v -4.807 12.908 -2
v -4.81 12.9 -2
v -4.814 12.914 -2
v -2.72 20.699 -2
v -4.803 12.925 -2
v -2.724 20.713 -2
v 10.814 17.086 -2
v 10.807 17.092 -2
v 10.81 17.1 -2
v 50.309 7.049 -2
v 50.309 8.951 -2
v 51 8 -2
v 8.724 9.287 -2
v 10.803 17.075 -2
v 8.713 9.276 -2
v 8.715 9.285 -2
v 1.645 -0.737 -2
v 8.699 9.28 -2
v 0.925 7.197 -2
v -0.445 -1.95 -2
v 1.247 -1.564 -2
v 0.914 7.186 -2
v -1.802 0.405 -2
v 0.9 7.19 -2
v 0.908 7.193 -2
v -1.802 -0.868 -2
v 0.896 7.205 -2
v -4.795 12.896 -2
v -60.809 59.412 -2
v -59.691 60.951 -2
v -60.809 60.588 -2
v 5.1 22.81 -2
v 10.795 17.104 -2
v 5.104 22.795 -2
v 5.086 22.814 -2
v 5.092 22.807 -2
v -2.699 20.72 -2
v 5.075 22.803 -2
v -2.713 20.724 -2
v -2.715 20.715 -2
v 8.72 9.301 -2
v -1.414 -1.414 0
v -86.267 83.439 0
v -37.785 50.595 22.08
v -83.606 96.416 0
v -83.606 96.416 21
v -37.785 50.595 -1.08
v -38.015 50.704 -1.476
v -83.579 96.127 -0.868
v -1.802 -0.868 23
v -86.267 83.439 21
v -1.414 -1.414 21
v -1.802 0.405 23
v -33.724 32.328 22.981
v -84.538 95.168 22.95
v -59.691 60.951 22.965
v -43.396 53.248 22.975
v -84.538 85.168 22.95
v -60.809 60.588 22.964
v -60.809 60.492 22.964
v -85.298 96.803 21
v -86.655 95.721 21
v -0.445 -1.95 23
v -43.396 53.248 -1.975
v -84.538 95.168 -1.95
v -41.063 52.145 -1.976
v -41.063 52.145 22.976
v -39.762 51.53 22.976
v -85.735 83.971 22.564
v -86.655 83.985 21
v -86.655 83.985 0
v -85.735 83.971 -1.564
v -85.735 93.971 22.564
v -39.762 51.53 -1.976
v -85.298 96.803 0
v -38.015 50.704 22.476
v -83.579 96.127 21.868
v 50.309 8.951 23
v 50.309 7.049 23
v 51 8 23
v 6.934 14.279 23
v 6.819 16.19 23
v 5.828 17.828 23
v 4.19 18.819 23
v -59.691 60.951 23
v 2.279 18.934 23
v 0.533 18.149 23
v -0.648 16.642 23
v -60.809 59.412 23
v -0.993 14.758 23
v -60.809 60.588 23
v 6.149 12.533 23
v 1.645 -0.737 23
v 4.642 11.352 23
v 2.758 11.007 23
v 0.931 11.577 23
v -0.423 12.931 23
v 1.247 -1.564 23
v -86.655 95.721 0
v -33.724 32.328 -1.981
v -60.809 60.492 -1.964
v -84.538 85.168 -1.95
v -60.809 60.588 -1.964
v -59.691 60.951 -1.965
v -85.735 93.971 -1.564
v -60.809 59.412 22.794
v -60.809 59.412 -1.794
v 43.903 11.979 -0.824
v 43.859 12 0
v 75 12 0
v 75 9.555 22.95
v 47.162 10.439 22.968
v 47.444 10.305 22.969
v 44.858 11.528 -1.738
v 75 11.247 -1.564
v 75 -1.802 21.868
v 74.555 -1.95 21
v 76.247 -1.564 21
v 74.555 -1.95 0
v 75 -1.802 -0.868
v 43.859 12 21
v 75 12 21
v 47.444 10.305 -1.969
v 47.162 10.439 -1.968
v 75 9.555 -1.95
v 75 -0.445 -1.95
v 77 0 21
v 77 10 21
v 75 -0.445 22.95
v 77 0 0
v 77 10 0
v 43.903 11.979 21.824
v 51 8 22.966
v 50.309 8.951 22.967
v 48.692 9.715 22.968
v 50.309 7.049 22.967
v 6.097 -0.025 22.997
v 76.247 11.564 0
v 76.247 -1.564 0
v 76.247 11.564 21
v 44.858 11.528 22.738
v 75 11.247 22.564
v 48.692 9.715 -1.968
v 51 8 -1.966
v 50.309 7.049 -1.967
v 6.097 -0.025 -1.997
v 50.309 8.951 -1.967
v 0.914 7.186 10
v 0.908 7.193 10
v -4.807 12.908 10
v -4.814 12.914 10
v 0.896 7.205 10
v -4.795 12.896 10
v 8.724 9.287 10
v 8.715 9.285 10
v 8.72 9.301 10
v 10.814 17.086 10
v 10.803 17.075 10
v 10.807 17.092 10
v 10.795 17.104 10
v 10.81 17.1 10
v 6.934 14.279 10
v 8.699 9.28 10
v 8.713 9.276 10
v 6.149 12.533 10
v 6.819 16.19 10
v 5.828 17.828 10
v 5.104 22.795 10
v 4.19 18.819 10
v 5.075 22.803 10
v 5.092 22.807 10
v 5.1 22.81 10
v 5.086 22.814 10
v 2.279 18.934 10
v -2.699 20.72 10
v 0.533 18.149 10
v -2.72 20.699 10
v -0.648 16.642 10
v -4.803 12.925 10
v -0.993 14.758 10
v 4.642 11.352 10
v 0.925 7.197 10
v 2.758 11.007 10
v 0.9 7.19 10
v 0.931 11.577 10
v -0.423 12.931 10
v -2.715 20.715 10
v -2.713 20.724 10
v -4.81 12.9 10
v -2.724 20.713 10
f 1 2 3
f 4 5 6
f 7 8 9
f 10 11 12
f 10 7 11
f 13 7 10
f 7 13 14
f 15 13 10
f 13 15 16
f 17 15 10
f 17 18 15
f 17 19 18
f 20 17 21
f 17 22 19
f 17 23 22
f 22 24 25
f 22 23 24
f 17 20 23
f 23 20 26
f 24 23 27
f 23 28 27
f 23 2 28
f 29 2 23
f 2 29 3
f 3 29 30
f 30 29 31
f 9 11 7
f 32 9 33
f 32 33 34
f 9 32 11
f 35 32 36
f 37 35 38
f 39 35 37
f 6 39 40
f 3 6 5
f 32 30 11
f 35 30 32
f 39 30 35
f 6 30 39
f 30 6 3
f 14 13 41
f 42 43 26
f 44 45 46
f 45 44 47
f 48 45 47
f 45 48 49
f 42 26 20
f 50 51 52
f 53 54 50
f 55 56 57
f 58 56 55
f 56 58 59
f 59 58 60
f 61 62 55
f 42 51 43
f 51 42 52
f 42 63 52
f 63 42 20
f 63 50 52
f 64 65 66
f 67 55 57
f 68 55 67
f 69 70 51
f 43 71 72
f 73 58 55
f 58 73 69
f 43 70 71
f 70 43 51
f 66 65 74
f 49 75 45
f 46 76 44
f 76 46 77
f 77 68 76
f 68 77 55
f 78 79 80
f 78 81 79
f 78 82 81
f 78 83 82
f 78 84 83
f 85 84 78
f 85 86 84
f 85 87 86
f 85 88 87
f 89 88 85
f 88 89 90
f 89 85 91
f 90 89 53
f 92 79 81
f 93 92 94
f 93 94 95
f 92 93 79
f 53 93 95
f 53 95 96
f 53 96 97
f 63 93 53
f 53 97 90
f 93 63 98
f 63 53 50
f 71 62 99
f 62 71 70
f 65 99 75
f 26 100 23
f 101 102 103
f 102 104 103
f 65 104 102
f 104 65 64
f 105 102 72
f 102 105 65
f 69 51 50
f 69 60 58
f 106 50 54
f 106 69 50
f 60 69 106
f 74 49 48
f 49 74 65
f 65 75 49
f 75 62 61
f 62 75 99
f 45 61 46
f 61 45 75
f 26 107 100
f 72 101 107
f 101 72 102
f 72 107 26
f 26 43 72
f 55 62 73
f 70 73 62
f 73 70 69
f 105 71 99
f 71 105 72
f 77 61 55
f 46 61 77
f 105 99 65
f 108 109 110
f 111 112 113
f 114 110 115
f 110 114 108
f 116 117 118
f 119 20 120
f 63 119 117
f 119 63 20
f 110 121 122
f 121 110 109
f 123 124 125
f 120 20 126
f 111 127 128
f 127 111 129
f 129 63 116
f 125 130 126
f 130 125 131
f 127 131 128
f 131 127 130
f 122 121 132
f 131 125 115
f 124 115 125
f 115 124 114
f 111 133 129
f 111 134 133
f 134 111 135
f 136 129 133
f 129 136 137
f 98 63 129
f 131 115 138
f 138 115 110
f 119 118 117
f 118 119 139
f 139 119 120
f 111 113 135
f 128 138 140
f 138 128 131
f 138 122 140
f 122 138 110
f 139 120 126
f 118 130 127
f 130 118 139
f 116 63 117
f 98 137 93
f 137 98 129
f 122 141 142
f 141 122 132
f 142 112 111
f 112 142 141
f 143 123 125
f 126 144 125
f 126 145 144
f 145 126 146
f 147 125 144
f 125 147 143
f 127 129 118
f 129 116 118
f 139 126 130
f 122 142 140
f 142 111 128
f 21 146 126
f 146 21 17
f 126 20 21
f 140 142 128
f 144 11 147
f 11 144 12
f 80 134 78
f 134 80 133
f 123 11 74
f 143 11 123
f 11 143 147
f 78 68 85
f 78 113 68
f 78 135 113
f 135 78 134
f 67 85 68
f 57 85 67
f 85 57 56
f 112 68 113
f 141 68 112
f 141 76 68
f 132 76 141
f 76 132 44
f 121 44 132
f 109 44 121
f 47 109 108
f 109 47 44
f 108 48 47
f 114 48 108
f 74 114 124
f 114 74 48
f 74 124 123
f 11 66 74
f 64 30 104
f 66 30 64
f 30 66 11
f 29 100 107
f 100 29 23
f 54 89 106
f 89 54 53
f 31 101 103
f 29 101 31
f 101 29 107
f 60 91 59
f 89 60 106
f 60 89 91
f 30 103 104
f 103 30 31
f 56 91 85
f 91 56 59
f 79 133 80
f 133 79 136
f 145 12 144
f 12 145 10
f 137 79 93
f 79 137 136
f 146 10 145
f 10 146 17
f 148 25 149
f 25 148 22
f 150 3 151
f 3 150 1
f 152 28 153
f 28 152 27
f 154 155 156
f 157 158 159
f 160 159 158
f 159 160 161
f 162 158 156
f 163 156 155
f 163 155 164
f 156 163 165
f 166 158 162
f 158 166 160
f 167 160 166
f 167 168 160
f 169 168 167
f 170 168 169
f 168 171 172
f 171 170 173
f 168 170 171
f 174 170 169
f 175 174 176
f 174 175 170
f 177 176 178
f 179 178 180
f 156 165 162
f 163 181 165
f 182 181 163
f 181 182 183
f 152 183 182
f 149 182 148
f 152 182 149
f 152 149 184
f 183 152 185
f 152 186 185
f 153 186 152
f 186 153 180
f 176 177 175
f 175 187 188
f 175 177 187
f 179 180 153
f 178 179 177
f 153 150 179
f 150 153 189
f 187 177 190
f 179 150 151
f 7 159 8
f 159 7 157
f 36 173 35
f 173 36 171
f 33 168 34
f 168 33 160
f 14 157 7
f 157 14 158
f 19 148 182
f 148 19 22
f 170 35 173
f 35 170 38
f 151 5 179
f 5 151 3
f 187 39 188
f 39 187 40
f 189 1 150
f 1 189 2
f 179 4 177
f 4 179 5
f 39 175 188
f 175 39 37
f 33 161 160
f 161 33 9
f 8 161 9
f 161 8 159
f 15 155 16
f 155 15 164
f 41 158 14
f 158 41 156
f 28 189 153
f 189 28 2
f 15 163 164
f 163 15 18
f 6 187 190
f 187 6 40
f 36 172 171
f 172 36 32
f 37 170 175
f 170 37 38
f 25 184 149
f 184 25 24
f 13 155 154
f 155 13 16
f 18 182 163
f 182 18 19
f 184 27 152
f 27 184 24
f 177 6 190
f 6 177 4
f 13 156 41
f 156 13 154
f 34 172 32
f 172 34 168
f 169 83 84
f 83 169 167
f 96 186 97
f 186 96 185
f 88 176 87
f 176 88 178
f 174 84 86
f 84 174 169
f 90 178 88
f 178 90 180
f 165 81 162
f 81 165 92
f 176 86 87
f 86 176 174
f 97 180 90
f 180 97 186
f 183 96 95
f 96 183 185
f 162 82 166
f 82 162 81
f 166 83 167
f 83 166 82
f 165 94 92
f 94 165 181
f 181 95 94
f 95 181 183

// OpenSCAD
// KuatRackPedal

handleLength = 120;
pedalLength = 75;
bevel = 2;
innerThickness = 25;
thickness = innerThickness - 2*bevel;
width = 10;
eqTriA = sqrt(pow(handleLength,2)/2); // length of the equilateral triangle side A from the handle length.
hexWidth = 14;
hexSide = 8.1;

difference() {
union() {
// Handle
hull() {
    rotate([90, 0, -135]) cylinder(handleLength, bevel,bevel);
    translate([0, 0, thickness]) rotate([90, 0, -135]) cylinder(handleLength, bevel,bevel);
    translate([0,0,-bevel]) cylinder(innerThickness, bevel, bevel);
    translate([-eqTriA, eqTriA, 0]) cylinder(thickness, bevel, bevel);
    
    translate([0,width,0]) {
        rotate([90, 0, -135]) cylinder(handleLength, bevel,bevel);
        translate([0, 0, thickness]) rotate([90, 0, -135]) cylinder(handleLength, bevel,bevel);
        translate([0,0,-bevel]) cylinder(innerThickness, bevel, bevel);
        translate([-eqTriA, eqTriA, 0]) cylinder(thickness, bevel, bevel);
    }
};

// Pedal
hull() {
    translate([0, 0, 0]) rotate([90, 0, 90]) cylinder(pedalLength, bevel,bevel);
    translate([0, 0, thickness]) rotate([90, 0, 90]) cylinder(pedalLength, bevel,bevel);
    translate([0,0,-bevel]) cylinder(innerThickness, bevel, bevel);
    translate([pedalLength, 0, 0]) cylinder(thickness, bevel, bevel);
    
    translate([0, width, 0]) {
        translate([0, 0, 0]) rotate([90, 0, 90]) cylinder(pedalLength, bevel,bevel);
        translate([0, 0, thickness]) rotate([90, 0, 90]) cylinder(pedalLength, bevel,bevel);
        translate([0,0,-bevel]) cylinder(innerThickness, bevel, bevel);
        translate([pedalLength, 0, 0]) cylinder(thickness, bevel, bevel);
    }
};

// Support
hull() {
    translate([50, width-2, -bevel]) cylinder(innerThickness, 1, 1);
    translate([-60, 60, -bevel]) cylinder(innerThickness, 1, 1);
    translate([0, 0, -bevel]) cylinder(innerThickness, 1, 1);
};

};

// Axis 

translate([3,15,-bevel]) {
    rotate([0,0,45]) union() {
        translate([-hexWidth/2, -hexSide/2,-1]) cube([hexWidth,hexSide,13]);
        rotate([0,0, 120]) translate([-hexWidth/2, -hexSide/2,-1]) cube([hexWidth,hexSide,13]);
        rotate([0,0, 240]) translate([-hexWidth/2, -hexSide/2,-1]) cube([hexWidth,hexSide,13]);
        cylinder(30, 4,4);
    }
}

}
